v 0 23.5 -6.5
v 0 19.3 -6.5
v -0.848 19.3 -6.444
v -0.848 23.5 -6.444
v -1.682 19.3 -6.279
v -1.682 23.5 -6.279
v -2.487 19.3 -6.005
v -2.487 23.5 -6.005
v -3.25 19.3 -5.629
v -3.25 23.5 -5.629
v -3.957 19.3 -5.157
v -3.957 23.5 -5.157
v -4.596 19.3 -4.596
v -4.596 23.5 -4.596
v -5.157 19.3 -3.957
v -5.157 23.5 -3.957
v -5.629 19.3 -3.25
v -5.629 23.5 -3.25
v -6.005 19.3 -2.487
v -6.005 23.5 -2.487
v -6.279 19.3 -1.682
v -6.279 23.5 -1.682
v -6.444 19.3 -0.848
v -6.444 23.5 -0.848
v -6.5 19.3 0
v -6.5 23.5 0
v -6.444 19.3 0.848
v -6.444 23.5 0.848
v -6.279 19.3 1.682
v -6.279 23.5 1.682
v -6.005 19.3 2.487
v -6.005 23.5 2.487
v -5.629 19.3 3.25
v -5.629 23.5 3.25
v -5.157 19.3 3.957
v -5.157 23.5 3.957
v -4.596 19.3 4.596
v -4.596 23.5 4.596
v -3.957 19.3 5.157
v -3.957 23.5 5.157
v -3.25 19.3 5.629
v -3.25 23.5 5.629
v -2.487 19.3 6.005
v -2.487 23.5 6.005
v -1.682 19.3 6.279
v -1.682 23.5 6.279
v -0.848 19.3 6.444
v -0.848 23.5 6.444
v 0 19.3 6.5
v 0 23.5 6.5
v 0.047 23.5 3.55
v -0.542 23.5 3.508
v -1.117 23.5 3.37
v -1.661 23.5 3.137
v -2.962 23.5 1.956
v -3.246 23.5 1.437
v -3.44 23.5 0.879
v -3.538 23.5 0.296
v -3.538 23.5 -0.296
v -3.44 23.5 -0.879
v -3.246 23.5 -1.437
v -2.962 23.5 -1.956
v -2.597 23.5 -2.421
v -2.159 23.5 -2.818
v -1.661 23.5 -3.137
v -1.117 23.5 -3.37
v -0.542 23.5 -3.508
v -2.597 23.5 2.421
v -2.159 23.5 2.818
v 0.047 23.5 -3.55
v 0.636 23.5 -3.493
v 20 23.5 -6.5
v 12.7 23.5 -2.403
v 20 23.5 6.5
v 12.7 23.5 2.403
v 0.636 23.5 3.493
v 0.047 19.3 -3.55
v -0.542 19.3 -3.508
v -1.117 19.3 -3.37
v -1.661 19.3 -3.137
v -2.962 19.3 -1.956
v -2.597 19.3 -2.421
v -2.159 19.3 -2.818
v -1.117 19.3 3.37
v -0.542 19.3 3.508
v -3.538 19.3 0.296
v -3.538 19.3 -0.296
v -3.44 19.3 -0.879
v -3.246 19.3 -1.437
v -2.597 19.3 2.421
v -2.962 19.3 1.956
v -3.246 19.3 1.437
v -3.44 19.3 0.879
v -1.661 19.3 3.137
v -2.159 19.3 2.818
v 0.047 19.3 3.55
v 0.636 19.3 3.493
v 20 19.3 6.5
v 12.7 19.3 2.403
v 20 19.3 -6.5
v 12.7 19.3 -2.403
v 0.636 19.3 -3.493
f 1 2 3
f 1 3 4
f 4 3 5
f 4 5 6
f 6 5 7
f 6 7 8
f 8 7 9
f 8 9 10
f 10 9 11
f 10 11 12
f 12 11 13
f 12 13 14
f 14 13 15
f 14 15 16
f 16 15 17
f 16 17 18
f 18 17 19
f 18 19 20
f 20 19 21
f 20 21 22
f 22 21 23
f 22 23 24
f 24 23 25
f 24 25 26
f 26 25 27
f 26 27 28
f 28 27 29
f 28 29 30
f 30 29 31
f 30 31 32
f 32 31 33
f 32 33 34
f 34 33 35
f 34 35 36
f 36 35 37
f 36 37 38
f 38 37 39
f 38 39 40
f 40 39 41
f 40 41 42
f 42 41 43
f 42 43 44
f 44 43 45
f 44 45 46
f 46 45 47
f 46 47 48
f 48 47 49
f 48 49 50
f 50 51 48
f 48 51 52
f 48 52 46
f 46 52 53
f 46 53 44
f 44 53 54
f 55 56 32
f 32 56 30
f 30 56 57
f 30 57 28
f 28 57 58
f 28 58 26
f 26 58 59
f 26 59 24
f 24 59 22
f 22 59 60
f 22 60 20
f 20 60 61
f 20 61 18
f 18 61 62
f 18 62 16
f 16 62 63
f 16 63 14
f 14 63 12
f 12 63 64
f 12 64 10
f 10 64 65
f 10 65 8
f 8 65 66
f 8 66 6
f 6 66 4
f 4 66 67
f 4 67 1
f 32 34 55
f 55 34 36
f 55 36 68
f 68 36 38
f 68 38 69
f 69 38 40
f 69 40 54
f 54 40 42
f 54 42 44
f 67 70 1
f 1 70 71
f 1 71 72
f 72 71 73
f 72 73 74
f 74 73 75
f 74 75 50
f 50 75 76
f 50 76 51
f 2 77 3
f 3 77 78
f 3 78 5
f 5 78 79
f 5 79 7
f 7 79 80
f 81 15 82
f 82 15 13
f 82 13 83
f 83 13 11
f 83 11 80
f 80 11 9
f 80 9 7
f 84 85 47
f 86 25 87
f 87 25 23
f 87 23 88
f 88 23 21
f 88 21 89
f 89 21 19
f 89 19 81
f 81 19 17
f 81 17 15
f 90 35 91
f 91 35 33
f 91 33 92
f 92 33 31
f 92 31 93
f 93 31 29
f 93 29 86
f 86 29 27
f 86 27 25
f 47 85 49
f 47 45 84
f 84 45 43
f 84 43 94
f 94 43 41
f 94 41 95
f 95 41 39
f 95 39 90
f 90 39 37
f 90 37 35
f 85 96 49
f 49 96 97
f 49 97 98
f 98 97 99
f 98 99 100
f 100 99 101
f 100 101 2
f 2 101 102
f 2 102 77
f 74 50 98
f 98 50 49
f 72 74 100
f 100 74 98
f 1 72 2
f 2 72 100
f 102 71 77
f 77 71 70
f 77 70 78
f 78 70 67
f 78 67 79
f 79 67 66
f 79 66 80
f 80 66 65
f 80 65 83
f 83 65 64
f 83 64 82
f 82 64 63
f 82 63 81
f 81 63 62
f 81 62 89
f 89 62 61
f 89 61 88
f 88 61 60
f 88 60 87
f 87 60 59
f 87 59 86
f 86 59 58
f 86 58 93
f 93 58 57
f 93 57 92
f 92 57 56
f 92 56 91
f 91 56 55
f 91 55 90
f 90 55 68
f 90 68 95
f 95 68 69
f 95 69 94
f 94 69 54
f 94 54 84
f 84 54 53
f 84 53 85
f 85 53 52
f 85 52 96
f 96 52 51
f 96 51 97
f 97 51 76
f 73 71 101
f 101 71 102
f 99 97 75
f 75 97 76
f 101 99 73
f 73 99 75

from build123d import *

# Parameters (mm, degrees)
BOSS_EXTRUDE1_START = 21.4
SKETCH1_R           = 6.5
BOSS_EXTRUDE1_DEPTH = 2.1
BOSS_EXTRUDE2_START = 21.4
SKETCH2_W           = 20
SKETCH2_H           = 13
BOSS_EXTRUDE2_DEPTH = 2.1
CUT_EXTRUDE1_START  = 21.4
SKETCH3_R           = 3.55
CUT_EXTRUDE1_DEPTH  = 2.1
CUT_EXTRUDE2_START  = 21.4
CUT_EXTRUDE2_DEPTH  = 2.1


with BuildPart() as part:
    # Sketch1 → Boss-Extrude1 (new, symmetric)
    with BuildSketch(Plane(origin=(0, 0, 0), x_dir=(1, 0, 0), z_dir=(0, 1, 0)).offset(BOSS_EXTRUDE1_START)):
        with Locations(Location((0, 0, 0), (0, 0, 270))):
            Circle(SKETCH1_R)
    extrude(amount=BOSS_EXTRUDE1_DEPTH, both=True)

    # Sketch2 → Boss-Extrude2 (add, symmetric)
    with BuildSketch(Plane(origin=(0, 0, 0), x_dir=(1, 0, 0), z_dir=(0, 1, 0)).offset(BOSS_EXTRUDE2_START)):
        with Locations((10, 0)):
            Rectangle(SKETCH2_W, SKETCH2_H)
    extrude(amount=BOSS_EXTRUDE2_DEPTH, both=True)

    # Sketch3 → Cut-Extrude1 (cut, symmetric)
    with BuildSketch(Plane(origin=(0, 0, 0), x_dir=(1, 0, 0), z_dir=(0, 1, 0)).offset(CUT_EXTRUDE1_START)):
        with Locations(Location((0, 0, 0), (0, 0, 270))):
            Circle(SKETCH3_R)
    extrude(amount=CUT_EXTRUDE1_DEPTH, both=True, mode=Mode.SUBTRACT)

    # Sketch4 → Cut-Extrude2 (cut, symmetric)
    with BuildSketch(Plane(origin=(0, 0, 0), x_dir=(1, 0, 0), z_dir=(0, 1, 0)).offset(CUT_EXTRUDE2_START)):
        Polygon((0, -3.55), (12.7, -2.403281405), (12.7, 2.403281405), (0, 3.55), align=None)
    extrude(amount=CUT_EXTRUDE2_DEPTH, both=True, mode=Mode.SUBTRACT)


solid = part.part
